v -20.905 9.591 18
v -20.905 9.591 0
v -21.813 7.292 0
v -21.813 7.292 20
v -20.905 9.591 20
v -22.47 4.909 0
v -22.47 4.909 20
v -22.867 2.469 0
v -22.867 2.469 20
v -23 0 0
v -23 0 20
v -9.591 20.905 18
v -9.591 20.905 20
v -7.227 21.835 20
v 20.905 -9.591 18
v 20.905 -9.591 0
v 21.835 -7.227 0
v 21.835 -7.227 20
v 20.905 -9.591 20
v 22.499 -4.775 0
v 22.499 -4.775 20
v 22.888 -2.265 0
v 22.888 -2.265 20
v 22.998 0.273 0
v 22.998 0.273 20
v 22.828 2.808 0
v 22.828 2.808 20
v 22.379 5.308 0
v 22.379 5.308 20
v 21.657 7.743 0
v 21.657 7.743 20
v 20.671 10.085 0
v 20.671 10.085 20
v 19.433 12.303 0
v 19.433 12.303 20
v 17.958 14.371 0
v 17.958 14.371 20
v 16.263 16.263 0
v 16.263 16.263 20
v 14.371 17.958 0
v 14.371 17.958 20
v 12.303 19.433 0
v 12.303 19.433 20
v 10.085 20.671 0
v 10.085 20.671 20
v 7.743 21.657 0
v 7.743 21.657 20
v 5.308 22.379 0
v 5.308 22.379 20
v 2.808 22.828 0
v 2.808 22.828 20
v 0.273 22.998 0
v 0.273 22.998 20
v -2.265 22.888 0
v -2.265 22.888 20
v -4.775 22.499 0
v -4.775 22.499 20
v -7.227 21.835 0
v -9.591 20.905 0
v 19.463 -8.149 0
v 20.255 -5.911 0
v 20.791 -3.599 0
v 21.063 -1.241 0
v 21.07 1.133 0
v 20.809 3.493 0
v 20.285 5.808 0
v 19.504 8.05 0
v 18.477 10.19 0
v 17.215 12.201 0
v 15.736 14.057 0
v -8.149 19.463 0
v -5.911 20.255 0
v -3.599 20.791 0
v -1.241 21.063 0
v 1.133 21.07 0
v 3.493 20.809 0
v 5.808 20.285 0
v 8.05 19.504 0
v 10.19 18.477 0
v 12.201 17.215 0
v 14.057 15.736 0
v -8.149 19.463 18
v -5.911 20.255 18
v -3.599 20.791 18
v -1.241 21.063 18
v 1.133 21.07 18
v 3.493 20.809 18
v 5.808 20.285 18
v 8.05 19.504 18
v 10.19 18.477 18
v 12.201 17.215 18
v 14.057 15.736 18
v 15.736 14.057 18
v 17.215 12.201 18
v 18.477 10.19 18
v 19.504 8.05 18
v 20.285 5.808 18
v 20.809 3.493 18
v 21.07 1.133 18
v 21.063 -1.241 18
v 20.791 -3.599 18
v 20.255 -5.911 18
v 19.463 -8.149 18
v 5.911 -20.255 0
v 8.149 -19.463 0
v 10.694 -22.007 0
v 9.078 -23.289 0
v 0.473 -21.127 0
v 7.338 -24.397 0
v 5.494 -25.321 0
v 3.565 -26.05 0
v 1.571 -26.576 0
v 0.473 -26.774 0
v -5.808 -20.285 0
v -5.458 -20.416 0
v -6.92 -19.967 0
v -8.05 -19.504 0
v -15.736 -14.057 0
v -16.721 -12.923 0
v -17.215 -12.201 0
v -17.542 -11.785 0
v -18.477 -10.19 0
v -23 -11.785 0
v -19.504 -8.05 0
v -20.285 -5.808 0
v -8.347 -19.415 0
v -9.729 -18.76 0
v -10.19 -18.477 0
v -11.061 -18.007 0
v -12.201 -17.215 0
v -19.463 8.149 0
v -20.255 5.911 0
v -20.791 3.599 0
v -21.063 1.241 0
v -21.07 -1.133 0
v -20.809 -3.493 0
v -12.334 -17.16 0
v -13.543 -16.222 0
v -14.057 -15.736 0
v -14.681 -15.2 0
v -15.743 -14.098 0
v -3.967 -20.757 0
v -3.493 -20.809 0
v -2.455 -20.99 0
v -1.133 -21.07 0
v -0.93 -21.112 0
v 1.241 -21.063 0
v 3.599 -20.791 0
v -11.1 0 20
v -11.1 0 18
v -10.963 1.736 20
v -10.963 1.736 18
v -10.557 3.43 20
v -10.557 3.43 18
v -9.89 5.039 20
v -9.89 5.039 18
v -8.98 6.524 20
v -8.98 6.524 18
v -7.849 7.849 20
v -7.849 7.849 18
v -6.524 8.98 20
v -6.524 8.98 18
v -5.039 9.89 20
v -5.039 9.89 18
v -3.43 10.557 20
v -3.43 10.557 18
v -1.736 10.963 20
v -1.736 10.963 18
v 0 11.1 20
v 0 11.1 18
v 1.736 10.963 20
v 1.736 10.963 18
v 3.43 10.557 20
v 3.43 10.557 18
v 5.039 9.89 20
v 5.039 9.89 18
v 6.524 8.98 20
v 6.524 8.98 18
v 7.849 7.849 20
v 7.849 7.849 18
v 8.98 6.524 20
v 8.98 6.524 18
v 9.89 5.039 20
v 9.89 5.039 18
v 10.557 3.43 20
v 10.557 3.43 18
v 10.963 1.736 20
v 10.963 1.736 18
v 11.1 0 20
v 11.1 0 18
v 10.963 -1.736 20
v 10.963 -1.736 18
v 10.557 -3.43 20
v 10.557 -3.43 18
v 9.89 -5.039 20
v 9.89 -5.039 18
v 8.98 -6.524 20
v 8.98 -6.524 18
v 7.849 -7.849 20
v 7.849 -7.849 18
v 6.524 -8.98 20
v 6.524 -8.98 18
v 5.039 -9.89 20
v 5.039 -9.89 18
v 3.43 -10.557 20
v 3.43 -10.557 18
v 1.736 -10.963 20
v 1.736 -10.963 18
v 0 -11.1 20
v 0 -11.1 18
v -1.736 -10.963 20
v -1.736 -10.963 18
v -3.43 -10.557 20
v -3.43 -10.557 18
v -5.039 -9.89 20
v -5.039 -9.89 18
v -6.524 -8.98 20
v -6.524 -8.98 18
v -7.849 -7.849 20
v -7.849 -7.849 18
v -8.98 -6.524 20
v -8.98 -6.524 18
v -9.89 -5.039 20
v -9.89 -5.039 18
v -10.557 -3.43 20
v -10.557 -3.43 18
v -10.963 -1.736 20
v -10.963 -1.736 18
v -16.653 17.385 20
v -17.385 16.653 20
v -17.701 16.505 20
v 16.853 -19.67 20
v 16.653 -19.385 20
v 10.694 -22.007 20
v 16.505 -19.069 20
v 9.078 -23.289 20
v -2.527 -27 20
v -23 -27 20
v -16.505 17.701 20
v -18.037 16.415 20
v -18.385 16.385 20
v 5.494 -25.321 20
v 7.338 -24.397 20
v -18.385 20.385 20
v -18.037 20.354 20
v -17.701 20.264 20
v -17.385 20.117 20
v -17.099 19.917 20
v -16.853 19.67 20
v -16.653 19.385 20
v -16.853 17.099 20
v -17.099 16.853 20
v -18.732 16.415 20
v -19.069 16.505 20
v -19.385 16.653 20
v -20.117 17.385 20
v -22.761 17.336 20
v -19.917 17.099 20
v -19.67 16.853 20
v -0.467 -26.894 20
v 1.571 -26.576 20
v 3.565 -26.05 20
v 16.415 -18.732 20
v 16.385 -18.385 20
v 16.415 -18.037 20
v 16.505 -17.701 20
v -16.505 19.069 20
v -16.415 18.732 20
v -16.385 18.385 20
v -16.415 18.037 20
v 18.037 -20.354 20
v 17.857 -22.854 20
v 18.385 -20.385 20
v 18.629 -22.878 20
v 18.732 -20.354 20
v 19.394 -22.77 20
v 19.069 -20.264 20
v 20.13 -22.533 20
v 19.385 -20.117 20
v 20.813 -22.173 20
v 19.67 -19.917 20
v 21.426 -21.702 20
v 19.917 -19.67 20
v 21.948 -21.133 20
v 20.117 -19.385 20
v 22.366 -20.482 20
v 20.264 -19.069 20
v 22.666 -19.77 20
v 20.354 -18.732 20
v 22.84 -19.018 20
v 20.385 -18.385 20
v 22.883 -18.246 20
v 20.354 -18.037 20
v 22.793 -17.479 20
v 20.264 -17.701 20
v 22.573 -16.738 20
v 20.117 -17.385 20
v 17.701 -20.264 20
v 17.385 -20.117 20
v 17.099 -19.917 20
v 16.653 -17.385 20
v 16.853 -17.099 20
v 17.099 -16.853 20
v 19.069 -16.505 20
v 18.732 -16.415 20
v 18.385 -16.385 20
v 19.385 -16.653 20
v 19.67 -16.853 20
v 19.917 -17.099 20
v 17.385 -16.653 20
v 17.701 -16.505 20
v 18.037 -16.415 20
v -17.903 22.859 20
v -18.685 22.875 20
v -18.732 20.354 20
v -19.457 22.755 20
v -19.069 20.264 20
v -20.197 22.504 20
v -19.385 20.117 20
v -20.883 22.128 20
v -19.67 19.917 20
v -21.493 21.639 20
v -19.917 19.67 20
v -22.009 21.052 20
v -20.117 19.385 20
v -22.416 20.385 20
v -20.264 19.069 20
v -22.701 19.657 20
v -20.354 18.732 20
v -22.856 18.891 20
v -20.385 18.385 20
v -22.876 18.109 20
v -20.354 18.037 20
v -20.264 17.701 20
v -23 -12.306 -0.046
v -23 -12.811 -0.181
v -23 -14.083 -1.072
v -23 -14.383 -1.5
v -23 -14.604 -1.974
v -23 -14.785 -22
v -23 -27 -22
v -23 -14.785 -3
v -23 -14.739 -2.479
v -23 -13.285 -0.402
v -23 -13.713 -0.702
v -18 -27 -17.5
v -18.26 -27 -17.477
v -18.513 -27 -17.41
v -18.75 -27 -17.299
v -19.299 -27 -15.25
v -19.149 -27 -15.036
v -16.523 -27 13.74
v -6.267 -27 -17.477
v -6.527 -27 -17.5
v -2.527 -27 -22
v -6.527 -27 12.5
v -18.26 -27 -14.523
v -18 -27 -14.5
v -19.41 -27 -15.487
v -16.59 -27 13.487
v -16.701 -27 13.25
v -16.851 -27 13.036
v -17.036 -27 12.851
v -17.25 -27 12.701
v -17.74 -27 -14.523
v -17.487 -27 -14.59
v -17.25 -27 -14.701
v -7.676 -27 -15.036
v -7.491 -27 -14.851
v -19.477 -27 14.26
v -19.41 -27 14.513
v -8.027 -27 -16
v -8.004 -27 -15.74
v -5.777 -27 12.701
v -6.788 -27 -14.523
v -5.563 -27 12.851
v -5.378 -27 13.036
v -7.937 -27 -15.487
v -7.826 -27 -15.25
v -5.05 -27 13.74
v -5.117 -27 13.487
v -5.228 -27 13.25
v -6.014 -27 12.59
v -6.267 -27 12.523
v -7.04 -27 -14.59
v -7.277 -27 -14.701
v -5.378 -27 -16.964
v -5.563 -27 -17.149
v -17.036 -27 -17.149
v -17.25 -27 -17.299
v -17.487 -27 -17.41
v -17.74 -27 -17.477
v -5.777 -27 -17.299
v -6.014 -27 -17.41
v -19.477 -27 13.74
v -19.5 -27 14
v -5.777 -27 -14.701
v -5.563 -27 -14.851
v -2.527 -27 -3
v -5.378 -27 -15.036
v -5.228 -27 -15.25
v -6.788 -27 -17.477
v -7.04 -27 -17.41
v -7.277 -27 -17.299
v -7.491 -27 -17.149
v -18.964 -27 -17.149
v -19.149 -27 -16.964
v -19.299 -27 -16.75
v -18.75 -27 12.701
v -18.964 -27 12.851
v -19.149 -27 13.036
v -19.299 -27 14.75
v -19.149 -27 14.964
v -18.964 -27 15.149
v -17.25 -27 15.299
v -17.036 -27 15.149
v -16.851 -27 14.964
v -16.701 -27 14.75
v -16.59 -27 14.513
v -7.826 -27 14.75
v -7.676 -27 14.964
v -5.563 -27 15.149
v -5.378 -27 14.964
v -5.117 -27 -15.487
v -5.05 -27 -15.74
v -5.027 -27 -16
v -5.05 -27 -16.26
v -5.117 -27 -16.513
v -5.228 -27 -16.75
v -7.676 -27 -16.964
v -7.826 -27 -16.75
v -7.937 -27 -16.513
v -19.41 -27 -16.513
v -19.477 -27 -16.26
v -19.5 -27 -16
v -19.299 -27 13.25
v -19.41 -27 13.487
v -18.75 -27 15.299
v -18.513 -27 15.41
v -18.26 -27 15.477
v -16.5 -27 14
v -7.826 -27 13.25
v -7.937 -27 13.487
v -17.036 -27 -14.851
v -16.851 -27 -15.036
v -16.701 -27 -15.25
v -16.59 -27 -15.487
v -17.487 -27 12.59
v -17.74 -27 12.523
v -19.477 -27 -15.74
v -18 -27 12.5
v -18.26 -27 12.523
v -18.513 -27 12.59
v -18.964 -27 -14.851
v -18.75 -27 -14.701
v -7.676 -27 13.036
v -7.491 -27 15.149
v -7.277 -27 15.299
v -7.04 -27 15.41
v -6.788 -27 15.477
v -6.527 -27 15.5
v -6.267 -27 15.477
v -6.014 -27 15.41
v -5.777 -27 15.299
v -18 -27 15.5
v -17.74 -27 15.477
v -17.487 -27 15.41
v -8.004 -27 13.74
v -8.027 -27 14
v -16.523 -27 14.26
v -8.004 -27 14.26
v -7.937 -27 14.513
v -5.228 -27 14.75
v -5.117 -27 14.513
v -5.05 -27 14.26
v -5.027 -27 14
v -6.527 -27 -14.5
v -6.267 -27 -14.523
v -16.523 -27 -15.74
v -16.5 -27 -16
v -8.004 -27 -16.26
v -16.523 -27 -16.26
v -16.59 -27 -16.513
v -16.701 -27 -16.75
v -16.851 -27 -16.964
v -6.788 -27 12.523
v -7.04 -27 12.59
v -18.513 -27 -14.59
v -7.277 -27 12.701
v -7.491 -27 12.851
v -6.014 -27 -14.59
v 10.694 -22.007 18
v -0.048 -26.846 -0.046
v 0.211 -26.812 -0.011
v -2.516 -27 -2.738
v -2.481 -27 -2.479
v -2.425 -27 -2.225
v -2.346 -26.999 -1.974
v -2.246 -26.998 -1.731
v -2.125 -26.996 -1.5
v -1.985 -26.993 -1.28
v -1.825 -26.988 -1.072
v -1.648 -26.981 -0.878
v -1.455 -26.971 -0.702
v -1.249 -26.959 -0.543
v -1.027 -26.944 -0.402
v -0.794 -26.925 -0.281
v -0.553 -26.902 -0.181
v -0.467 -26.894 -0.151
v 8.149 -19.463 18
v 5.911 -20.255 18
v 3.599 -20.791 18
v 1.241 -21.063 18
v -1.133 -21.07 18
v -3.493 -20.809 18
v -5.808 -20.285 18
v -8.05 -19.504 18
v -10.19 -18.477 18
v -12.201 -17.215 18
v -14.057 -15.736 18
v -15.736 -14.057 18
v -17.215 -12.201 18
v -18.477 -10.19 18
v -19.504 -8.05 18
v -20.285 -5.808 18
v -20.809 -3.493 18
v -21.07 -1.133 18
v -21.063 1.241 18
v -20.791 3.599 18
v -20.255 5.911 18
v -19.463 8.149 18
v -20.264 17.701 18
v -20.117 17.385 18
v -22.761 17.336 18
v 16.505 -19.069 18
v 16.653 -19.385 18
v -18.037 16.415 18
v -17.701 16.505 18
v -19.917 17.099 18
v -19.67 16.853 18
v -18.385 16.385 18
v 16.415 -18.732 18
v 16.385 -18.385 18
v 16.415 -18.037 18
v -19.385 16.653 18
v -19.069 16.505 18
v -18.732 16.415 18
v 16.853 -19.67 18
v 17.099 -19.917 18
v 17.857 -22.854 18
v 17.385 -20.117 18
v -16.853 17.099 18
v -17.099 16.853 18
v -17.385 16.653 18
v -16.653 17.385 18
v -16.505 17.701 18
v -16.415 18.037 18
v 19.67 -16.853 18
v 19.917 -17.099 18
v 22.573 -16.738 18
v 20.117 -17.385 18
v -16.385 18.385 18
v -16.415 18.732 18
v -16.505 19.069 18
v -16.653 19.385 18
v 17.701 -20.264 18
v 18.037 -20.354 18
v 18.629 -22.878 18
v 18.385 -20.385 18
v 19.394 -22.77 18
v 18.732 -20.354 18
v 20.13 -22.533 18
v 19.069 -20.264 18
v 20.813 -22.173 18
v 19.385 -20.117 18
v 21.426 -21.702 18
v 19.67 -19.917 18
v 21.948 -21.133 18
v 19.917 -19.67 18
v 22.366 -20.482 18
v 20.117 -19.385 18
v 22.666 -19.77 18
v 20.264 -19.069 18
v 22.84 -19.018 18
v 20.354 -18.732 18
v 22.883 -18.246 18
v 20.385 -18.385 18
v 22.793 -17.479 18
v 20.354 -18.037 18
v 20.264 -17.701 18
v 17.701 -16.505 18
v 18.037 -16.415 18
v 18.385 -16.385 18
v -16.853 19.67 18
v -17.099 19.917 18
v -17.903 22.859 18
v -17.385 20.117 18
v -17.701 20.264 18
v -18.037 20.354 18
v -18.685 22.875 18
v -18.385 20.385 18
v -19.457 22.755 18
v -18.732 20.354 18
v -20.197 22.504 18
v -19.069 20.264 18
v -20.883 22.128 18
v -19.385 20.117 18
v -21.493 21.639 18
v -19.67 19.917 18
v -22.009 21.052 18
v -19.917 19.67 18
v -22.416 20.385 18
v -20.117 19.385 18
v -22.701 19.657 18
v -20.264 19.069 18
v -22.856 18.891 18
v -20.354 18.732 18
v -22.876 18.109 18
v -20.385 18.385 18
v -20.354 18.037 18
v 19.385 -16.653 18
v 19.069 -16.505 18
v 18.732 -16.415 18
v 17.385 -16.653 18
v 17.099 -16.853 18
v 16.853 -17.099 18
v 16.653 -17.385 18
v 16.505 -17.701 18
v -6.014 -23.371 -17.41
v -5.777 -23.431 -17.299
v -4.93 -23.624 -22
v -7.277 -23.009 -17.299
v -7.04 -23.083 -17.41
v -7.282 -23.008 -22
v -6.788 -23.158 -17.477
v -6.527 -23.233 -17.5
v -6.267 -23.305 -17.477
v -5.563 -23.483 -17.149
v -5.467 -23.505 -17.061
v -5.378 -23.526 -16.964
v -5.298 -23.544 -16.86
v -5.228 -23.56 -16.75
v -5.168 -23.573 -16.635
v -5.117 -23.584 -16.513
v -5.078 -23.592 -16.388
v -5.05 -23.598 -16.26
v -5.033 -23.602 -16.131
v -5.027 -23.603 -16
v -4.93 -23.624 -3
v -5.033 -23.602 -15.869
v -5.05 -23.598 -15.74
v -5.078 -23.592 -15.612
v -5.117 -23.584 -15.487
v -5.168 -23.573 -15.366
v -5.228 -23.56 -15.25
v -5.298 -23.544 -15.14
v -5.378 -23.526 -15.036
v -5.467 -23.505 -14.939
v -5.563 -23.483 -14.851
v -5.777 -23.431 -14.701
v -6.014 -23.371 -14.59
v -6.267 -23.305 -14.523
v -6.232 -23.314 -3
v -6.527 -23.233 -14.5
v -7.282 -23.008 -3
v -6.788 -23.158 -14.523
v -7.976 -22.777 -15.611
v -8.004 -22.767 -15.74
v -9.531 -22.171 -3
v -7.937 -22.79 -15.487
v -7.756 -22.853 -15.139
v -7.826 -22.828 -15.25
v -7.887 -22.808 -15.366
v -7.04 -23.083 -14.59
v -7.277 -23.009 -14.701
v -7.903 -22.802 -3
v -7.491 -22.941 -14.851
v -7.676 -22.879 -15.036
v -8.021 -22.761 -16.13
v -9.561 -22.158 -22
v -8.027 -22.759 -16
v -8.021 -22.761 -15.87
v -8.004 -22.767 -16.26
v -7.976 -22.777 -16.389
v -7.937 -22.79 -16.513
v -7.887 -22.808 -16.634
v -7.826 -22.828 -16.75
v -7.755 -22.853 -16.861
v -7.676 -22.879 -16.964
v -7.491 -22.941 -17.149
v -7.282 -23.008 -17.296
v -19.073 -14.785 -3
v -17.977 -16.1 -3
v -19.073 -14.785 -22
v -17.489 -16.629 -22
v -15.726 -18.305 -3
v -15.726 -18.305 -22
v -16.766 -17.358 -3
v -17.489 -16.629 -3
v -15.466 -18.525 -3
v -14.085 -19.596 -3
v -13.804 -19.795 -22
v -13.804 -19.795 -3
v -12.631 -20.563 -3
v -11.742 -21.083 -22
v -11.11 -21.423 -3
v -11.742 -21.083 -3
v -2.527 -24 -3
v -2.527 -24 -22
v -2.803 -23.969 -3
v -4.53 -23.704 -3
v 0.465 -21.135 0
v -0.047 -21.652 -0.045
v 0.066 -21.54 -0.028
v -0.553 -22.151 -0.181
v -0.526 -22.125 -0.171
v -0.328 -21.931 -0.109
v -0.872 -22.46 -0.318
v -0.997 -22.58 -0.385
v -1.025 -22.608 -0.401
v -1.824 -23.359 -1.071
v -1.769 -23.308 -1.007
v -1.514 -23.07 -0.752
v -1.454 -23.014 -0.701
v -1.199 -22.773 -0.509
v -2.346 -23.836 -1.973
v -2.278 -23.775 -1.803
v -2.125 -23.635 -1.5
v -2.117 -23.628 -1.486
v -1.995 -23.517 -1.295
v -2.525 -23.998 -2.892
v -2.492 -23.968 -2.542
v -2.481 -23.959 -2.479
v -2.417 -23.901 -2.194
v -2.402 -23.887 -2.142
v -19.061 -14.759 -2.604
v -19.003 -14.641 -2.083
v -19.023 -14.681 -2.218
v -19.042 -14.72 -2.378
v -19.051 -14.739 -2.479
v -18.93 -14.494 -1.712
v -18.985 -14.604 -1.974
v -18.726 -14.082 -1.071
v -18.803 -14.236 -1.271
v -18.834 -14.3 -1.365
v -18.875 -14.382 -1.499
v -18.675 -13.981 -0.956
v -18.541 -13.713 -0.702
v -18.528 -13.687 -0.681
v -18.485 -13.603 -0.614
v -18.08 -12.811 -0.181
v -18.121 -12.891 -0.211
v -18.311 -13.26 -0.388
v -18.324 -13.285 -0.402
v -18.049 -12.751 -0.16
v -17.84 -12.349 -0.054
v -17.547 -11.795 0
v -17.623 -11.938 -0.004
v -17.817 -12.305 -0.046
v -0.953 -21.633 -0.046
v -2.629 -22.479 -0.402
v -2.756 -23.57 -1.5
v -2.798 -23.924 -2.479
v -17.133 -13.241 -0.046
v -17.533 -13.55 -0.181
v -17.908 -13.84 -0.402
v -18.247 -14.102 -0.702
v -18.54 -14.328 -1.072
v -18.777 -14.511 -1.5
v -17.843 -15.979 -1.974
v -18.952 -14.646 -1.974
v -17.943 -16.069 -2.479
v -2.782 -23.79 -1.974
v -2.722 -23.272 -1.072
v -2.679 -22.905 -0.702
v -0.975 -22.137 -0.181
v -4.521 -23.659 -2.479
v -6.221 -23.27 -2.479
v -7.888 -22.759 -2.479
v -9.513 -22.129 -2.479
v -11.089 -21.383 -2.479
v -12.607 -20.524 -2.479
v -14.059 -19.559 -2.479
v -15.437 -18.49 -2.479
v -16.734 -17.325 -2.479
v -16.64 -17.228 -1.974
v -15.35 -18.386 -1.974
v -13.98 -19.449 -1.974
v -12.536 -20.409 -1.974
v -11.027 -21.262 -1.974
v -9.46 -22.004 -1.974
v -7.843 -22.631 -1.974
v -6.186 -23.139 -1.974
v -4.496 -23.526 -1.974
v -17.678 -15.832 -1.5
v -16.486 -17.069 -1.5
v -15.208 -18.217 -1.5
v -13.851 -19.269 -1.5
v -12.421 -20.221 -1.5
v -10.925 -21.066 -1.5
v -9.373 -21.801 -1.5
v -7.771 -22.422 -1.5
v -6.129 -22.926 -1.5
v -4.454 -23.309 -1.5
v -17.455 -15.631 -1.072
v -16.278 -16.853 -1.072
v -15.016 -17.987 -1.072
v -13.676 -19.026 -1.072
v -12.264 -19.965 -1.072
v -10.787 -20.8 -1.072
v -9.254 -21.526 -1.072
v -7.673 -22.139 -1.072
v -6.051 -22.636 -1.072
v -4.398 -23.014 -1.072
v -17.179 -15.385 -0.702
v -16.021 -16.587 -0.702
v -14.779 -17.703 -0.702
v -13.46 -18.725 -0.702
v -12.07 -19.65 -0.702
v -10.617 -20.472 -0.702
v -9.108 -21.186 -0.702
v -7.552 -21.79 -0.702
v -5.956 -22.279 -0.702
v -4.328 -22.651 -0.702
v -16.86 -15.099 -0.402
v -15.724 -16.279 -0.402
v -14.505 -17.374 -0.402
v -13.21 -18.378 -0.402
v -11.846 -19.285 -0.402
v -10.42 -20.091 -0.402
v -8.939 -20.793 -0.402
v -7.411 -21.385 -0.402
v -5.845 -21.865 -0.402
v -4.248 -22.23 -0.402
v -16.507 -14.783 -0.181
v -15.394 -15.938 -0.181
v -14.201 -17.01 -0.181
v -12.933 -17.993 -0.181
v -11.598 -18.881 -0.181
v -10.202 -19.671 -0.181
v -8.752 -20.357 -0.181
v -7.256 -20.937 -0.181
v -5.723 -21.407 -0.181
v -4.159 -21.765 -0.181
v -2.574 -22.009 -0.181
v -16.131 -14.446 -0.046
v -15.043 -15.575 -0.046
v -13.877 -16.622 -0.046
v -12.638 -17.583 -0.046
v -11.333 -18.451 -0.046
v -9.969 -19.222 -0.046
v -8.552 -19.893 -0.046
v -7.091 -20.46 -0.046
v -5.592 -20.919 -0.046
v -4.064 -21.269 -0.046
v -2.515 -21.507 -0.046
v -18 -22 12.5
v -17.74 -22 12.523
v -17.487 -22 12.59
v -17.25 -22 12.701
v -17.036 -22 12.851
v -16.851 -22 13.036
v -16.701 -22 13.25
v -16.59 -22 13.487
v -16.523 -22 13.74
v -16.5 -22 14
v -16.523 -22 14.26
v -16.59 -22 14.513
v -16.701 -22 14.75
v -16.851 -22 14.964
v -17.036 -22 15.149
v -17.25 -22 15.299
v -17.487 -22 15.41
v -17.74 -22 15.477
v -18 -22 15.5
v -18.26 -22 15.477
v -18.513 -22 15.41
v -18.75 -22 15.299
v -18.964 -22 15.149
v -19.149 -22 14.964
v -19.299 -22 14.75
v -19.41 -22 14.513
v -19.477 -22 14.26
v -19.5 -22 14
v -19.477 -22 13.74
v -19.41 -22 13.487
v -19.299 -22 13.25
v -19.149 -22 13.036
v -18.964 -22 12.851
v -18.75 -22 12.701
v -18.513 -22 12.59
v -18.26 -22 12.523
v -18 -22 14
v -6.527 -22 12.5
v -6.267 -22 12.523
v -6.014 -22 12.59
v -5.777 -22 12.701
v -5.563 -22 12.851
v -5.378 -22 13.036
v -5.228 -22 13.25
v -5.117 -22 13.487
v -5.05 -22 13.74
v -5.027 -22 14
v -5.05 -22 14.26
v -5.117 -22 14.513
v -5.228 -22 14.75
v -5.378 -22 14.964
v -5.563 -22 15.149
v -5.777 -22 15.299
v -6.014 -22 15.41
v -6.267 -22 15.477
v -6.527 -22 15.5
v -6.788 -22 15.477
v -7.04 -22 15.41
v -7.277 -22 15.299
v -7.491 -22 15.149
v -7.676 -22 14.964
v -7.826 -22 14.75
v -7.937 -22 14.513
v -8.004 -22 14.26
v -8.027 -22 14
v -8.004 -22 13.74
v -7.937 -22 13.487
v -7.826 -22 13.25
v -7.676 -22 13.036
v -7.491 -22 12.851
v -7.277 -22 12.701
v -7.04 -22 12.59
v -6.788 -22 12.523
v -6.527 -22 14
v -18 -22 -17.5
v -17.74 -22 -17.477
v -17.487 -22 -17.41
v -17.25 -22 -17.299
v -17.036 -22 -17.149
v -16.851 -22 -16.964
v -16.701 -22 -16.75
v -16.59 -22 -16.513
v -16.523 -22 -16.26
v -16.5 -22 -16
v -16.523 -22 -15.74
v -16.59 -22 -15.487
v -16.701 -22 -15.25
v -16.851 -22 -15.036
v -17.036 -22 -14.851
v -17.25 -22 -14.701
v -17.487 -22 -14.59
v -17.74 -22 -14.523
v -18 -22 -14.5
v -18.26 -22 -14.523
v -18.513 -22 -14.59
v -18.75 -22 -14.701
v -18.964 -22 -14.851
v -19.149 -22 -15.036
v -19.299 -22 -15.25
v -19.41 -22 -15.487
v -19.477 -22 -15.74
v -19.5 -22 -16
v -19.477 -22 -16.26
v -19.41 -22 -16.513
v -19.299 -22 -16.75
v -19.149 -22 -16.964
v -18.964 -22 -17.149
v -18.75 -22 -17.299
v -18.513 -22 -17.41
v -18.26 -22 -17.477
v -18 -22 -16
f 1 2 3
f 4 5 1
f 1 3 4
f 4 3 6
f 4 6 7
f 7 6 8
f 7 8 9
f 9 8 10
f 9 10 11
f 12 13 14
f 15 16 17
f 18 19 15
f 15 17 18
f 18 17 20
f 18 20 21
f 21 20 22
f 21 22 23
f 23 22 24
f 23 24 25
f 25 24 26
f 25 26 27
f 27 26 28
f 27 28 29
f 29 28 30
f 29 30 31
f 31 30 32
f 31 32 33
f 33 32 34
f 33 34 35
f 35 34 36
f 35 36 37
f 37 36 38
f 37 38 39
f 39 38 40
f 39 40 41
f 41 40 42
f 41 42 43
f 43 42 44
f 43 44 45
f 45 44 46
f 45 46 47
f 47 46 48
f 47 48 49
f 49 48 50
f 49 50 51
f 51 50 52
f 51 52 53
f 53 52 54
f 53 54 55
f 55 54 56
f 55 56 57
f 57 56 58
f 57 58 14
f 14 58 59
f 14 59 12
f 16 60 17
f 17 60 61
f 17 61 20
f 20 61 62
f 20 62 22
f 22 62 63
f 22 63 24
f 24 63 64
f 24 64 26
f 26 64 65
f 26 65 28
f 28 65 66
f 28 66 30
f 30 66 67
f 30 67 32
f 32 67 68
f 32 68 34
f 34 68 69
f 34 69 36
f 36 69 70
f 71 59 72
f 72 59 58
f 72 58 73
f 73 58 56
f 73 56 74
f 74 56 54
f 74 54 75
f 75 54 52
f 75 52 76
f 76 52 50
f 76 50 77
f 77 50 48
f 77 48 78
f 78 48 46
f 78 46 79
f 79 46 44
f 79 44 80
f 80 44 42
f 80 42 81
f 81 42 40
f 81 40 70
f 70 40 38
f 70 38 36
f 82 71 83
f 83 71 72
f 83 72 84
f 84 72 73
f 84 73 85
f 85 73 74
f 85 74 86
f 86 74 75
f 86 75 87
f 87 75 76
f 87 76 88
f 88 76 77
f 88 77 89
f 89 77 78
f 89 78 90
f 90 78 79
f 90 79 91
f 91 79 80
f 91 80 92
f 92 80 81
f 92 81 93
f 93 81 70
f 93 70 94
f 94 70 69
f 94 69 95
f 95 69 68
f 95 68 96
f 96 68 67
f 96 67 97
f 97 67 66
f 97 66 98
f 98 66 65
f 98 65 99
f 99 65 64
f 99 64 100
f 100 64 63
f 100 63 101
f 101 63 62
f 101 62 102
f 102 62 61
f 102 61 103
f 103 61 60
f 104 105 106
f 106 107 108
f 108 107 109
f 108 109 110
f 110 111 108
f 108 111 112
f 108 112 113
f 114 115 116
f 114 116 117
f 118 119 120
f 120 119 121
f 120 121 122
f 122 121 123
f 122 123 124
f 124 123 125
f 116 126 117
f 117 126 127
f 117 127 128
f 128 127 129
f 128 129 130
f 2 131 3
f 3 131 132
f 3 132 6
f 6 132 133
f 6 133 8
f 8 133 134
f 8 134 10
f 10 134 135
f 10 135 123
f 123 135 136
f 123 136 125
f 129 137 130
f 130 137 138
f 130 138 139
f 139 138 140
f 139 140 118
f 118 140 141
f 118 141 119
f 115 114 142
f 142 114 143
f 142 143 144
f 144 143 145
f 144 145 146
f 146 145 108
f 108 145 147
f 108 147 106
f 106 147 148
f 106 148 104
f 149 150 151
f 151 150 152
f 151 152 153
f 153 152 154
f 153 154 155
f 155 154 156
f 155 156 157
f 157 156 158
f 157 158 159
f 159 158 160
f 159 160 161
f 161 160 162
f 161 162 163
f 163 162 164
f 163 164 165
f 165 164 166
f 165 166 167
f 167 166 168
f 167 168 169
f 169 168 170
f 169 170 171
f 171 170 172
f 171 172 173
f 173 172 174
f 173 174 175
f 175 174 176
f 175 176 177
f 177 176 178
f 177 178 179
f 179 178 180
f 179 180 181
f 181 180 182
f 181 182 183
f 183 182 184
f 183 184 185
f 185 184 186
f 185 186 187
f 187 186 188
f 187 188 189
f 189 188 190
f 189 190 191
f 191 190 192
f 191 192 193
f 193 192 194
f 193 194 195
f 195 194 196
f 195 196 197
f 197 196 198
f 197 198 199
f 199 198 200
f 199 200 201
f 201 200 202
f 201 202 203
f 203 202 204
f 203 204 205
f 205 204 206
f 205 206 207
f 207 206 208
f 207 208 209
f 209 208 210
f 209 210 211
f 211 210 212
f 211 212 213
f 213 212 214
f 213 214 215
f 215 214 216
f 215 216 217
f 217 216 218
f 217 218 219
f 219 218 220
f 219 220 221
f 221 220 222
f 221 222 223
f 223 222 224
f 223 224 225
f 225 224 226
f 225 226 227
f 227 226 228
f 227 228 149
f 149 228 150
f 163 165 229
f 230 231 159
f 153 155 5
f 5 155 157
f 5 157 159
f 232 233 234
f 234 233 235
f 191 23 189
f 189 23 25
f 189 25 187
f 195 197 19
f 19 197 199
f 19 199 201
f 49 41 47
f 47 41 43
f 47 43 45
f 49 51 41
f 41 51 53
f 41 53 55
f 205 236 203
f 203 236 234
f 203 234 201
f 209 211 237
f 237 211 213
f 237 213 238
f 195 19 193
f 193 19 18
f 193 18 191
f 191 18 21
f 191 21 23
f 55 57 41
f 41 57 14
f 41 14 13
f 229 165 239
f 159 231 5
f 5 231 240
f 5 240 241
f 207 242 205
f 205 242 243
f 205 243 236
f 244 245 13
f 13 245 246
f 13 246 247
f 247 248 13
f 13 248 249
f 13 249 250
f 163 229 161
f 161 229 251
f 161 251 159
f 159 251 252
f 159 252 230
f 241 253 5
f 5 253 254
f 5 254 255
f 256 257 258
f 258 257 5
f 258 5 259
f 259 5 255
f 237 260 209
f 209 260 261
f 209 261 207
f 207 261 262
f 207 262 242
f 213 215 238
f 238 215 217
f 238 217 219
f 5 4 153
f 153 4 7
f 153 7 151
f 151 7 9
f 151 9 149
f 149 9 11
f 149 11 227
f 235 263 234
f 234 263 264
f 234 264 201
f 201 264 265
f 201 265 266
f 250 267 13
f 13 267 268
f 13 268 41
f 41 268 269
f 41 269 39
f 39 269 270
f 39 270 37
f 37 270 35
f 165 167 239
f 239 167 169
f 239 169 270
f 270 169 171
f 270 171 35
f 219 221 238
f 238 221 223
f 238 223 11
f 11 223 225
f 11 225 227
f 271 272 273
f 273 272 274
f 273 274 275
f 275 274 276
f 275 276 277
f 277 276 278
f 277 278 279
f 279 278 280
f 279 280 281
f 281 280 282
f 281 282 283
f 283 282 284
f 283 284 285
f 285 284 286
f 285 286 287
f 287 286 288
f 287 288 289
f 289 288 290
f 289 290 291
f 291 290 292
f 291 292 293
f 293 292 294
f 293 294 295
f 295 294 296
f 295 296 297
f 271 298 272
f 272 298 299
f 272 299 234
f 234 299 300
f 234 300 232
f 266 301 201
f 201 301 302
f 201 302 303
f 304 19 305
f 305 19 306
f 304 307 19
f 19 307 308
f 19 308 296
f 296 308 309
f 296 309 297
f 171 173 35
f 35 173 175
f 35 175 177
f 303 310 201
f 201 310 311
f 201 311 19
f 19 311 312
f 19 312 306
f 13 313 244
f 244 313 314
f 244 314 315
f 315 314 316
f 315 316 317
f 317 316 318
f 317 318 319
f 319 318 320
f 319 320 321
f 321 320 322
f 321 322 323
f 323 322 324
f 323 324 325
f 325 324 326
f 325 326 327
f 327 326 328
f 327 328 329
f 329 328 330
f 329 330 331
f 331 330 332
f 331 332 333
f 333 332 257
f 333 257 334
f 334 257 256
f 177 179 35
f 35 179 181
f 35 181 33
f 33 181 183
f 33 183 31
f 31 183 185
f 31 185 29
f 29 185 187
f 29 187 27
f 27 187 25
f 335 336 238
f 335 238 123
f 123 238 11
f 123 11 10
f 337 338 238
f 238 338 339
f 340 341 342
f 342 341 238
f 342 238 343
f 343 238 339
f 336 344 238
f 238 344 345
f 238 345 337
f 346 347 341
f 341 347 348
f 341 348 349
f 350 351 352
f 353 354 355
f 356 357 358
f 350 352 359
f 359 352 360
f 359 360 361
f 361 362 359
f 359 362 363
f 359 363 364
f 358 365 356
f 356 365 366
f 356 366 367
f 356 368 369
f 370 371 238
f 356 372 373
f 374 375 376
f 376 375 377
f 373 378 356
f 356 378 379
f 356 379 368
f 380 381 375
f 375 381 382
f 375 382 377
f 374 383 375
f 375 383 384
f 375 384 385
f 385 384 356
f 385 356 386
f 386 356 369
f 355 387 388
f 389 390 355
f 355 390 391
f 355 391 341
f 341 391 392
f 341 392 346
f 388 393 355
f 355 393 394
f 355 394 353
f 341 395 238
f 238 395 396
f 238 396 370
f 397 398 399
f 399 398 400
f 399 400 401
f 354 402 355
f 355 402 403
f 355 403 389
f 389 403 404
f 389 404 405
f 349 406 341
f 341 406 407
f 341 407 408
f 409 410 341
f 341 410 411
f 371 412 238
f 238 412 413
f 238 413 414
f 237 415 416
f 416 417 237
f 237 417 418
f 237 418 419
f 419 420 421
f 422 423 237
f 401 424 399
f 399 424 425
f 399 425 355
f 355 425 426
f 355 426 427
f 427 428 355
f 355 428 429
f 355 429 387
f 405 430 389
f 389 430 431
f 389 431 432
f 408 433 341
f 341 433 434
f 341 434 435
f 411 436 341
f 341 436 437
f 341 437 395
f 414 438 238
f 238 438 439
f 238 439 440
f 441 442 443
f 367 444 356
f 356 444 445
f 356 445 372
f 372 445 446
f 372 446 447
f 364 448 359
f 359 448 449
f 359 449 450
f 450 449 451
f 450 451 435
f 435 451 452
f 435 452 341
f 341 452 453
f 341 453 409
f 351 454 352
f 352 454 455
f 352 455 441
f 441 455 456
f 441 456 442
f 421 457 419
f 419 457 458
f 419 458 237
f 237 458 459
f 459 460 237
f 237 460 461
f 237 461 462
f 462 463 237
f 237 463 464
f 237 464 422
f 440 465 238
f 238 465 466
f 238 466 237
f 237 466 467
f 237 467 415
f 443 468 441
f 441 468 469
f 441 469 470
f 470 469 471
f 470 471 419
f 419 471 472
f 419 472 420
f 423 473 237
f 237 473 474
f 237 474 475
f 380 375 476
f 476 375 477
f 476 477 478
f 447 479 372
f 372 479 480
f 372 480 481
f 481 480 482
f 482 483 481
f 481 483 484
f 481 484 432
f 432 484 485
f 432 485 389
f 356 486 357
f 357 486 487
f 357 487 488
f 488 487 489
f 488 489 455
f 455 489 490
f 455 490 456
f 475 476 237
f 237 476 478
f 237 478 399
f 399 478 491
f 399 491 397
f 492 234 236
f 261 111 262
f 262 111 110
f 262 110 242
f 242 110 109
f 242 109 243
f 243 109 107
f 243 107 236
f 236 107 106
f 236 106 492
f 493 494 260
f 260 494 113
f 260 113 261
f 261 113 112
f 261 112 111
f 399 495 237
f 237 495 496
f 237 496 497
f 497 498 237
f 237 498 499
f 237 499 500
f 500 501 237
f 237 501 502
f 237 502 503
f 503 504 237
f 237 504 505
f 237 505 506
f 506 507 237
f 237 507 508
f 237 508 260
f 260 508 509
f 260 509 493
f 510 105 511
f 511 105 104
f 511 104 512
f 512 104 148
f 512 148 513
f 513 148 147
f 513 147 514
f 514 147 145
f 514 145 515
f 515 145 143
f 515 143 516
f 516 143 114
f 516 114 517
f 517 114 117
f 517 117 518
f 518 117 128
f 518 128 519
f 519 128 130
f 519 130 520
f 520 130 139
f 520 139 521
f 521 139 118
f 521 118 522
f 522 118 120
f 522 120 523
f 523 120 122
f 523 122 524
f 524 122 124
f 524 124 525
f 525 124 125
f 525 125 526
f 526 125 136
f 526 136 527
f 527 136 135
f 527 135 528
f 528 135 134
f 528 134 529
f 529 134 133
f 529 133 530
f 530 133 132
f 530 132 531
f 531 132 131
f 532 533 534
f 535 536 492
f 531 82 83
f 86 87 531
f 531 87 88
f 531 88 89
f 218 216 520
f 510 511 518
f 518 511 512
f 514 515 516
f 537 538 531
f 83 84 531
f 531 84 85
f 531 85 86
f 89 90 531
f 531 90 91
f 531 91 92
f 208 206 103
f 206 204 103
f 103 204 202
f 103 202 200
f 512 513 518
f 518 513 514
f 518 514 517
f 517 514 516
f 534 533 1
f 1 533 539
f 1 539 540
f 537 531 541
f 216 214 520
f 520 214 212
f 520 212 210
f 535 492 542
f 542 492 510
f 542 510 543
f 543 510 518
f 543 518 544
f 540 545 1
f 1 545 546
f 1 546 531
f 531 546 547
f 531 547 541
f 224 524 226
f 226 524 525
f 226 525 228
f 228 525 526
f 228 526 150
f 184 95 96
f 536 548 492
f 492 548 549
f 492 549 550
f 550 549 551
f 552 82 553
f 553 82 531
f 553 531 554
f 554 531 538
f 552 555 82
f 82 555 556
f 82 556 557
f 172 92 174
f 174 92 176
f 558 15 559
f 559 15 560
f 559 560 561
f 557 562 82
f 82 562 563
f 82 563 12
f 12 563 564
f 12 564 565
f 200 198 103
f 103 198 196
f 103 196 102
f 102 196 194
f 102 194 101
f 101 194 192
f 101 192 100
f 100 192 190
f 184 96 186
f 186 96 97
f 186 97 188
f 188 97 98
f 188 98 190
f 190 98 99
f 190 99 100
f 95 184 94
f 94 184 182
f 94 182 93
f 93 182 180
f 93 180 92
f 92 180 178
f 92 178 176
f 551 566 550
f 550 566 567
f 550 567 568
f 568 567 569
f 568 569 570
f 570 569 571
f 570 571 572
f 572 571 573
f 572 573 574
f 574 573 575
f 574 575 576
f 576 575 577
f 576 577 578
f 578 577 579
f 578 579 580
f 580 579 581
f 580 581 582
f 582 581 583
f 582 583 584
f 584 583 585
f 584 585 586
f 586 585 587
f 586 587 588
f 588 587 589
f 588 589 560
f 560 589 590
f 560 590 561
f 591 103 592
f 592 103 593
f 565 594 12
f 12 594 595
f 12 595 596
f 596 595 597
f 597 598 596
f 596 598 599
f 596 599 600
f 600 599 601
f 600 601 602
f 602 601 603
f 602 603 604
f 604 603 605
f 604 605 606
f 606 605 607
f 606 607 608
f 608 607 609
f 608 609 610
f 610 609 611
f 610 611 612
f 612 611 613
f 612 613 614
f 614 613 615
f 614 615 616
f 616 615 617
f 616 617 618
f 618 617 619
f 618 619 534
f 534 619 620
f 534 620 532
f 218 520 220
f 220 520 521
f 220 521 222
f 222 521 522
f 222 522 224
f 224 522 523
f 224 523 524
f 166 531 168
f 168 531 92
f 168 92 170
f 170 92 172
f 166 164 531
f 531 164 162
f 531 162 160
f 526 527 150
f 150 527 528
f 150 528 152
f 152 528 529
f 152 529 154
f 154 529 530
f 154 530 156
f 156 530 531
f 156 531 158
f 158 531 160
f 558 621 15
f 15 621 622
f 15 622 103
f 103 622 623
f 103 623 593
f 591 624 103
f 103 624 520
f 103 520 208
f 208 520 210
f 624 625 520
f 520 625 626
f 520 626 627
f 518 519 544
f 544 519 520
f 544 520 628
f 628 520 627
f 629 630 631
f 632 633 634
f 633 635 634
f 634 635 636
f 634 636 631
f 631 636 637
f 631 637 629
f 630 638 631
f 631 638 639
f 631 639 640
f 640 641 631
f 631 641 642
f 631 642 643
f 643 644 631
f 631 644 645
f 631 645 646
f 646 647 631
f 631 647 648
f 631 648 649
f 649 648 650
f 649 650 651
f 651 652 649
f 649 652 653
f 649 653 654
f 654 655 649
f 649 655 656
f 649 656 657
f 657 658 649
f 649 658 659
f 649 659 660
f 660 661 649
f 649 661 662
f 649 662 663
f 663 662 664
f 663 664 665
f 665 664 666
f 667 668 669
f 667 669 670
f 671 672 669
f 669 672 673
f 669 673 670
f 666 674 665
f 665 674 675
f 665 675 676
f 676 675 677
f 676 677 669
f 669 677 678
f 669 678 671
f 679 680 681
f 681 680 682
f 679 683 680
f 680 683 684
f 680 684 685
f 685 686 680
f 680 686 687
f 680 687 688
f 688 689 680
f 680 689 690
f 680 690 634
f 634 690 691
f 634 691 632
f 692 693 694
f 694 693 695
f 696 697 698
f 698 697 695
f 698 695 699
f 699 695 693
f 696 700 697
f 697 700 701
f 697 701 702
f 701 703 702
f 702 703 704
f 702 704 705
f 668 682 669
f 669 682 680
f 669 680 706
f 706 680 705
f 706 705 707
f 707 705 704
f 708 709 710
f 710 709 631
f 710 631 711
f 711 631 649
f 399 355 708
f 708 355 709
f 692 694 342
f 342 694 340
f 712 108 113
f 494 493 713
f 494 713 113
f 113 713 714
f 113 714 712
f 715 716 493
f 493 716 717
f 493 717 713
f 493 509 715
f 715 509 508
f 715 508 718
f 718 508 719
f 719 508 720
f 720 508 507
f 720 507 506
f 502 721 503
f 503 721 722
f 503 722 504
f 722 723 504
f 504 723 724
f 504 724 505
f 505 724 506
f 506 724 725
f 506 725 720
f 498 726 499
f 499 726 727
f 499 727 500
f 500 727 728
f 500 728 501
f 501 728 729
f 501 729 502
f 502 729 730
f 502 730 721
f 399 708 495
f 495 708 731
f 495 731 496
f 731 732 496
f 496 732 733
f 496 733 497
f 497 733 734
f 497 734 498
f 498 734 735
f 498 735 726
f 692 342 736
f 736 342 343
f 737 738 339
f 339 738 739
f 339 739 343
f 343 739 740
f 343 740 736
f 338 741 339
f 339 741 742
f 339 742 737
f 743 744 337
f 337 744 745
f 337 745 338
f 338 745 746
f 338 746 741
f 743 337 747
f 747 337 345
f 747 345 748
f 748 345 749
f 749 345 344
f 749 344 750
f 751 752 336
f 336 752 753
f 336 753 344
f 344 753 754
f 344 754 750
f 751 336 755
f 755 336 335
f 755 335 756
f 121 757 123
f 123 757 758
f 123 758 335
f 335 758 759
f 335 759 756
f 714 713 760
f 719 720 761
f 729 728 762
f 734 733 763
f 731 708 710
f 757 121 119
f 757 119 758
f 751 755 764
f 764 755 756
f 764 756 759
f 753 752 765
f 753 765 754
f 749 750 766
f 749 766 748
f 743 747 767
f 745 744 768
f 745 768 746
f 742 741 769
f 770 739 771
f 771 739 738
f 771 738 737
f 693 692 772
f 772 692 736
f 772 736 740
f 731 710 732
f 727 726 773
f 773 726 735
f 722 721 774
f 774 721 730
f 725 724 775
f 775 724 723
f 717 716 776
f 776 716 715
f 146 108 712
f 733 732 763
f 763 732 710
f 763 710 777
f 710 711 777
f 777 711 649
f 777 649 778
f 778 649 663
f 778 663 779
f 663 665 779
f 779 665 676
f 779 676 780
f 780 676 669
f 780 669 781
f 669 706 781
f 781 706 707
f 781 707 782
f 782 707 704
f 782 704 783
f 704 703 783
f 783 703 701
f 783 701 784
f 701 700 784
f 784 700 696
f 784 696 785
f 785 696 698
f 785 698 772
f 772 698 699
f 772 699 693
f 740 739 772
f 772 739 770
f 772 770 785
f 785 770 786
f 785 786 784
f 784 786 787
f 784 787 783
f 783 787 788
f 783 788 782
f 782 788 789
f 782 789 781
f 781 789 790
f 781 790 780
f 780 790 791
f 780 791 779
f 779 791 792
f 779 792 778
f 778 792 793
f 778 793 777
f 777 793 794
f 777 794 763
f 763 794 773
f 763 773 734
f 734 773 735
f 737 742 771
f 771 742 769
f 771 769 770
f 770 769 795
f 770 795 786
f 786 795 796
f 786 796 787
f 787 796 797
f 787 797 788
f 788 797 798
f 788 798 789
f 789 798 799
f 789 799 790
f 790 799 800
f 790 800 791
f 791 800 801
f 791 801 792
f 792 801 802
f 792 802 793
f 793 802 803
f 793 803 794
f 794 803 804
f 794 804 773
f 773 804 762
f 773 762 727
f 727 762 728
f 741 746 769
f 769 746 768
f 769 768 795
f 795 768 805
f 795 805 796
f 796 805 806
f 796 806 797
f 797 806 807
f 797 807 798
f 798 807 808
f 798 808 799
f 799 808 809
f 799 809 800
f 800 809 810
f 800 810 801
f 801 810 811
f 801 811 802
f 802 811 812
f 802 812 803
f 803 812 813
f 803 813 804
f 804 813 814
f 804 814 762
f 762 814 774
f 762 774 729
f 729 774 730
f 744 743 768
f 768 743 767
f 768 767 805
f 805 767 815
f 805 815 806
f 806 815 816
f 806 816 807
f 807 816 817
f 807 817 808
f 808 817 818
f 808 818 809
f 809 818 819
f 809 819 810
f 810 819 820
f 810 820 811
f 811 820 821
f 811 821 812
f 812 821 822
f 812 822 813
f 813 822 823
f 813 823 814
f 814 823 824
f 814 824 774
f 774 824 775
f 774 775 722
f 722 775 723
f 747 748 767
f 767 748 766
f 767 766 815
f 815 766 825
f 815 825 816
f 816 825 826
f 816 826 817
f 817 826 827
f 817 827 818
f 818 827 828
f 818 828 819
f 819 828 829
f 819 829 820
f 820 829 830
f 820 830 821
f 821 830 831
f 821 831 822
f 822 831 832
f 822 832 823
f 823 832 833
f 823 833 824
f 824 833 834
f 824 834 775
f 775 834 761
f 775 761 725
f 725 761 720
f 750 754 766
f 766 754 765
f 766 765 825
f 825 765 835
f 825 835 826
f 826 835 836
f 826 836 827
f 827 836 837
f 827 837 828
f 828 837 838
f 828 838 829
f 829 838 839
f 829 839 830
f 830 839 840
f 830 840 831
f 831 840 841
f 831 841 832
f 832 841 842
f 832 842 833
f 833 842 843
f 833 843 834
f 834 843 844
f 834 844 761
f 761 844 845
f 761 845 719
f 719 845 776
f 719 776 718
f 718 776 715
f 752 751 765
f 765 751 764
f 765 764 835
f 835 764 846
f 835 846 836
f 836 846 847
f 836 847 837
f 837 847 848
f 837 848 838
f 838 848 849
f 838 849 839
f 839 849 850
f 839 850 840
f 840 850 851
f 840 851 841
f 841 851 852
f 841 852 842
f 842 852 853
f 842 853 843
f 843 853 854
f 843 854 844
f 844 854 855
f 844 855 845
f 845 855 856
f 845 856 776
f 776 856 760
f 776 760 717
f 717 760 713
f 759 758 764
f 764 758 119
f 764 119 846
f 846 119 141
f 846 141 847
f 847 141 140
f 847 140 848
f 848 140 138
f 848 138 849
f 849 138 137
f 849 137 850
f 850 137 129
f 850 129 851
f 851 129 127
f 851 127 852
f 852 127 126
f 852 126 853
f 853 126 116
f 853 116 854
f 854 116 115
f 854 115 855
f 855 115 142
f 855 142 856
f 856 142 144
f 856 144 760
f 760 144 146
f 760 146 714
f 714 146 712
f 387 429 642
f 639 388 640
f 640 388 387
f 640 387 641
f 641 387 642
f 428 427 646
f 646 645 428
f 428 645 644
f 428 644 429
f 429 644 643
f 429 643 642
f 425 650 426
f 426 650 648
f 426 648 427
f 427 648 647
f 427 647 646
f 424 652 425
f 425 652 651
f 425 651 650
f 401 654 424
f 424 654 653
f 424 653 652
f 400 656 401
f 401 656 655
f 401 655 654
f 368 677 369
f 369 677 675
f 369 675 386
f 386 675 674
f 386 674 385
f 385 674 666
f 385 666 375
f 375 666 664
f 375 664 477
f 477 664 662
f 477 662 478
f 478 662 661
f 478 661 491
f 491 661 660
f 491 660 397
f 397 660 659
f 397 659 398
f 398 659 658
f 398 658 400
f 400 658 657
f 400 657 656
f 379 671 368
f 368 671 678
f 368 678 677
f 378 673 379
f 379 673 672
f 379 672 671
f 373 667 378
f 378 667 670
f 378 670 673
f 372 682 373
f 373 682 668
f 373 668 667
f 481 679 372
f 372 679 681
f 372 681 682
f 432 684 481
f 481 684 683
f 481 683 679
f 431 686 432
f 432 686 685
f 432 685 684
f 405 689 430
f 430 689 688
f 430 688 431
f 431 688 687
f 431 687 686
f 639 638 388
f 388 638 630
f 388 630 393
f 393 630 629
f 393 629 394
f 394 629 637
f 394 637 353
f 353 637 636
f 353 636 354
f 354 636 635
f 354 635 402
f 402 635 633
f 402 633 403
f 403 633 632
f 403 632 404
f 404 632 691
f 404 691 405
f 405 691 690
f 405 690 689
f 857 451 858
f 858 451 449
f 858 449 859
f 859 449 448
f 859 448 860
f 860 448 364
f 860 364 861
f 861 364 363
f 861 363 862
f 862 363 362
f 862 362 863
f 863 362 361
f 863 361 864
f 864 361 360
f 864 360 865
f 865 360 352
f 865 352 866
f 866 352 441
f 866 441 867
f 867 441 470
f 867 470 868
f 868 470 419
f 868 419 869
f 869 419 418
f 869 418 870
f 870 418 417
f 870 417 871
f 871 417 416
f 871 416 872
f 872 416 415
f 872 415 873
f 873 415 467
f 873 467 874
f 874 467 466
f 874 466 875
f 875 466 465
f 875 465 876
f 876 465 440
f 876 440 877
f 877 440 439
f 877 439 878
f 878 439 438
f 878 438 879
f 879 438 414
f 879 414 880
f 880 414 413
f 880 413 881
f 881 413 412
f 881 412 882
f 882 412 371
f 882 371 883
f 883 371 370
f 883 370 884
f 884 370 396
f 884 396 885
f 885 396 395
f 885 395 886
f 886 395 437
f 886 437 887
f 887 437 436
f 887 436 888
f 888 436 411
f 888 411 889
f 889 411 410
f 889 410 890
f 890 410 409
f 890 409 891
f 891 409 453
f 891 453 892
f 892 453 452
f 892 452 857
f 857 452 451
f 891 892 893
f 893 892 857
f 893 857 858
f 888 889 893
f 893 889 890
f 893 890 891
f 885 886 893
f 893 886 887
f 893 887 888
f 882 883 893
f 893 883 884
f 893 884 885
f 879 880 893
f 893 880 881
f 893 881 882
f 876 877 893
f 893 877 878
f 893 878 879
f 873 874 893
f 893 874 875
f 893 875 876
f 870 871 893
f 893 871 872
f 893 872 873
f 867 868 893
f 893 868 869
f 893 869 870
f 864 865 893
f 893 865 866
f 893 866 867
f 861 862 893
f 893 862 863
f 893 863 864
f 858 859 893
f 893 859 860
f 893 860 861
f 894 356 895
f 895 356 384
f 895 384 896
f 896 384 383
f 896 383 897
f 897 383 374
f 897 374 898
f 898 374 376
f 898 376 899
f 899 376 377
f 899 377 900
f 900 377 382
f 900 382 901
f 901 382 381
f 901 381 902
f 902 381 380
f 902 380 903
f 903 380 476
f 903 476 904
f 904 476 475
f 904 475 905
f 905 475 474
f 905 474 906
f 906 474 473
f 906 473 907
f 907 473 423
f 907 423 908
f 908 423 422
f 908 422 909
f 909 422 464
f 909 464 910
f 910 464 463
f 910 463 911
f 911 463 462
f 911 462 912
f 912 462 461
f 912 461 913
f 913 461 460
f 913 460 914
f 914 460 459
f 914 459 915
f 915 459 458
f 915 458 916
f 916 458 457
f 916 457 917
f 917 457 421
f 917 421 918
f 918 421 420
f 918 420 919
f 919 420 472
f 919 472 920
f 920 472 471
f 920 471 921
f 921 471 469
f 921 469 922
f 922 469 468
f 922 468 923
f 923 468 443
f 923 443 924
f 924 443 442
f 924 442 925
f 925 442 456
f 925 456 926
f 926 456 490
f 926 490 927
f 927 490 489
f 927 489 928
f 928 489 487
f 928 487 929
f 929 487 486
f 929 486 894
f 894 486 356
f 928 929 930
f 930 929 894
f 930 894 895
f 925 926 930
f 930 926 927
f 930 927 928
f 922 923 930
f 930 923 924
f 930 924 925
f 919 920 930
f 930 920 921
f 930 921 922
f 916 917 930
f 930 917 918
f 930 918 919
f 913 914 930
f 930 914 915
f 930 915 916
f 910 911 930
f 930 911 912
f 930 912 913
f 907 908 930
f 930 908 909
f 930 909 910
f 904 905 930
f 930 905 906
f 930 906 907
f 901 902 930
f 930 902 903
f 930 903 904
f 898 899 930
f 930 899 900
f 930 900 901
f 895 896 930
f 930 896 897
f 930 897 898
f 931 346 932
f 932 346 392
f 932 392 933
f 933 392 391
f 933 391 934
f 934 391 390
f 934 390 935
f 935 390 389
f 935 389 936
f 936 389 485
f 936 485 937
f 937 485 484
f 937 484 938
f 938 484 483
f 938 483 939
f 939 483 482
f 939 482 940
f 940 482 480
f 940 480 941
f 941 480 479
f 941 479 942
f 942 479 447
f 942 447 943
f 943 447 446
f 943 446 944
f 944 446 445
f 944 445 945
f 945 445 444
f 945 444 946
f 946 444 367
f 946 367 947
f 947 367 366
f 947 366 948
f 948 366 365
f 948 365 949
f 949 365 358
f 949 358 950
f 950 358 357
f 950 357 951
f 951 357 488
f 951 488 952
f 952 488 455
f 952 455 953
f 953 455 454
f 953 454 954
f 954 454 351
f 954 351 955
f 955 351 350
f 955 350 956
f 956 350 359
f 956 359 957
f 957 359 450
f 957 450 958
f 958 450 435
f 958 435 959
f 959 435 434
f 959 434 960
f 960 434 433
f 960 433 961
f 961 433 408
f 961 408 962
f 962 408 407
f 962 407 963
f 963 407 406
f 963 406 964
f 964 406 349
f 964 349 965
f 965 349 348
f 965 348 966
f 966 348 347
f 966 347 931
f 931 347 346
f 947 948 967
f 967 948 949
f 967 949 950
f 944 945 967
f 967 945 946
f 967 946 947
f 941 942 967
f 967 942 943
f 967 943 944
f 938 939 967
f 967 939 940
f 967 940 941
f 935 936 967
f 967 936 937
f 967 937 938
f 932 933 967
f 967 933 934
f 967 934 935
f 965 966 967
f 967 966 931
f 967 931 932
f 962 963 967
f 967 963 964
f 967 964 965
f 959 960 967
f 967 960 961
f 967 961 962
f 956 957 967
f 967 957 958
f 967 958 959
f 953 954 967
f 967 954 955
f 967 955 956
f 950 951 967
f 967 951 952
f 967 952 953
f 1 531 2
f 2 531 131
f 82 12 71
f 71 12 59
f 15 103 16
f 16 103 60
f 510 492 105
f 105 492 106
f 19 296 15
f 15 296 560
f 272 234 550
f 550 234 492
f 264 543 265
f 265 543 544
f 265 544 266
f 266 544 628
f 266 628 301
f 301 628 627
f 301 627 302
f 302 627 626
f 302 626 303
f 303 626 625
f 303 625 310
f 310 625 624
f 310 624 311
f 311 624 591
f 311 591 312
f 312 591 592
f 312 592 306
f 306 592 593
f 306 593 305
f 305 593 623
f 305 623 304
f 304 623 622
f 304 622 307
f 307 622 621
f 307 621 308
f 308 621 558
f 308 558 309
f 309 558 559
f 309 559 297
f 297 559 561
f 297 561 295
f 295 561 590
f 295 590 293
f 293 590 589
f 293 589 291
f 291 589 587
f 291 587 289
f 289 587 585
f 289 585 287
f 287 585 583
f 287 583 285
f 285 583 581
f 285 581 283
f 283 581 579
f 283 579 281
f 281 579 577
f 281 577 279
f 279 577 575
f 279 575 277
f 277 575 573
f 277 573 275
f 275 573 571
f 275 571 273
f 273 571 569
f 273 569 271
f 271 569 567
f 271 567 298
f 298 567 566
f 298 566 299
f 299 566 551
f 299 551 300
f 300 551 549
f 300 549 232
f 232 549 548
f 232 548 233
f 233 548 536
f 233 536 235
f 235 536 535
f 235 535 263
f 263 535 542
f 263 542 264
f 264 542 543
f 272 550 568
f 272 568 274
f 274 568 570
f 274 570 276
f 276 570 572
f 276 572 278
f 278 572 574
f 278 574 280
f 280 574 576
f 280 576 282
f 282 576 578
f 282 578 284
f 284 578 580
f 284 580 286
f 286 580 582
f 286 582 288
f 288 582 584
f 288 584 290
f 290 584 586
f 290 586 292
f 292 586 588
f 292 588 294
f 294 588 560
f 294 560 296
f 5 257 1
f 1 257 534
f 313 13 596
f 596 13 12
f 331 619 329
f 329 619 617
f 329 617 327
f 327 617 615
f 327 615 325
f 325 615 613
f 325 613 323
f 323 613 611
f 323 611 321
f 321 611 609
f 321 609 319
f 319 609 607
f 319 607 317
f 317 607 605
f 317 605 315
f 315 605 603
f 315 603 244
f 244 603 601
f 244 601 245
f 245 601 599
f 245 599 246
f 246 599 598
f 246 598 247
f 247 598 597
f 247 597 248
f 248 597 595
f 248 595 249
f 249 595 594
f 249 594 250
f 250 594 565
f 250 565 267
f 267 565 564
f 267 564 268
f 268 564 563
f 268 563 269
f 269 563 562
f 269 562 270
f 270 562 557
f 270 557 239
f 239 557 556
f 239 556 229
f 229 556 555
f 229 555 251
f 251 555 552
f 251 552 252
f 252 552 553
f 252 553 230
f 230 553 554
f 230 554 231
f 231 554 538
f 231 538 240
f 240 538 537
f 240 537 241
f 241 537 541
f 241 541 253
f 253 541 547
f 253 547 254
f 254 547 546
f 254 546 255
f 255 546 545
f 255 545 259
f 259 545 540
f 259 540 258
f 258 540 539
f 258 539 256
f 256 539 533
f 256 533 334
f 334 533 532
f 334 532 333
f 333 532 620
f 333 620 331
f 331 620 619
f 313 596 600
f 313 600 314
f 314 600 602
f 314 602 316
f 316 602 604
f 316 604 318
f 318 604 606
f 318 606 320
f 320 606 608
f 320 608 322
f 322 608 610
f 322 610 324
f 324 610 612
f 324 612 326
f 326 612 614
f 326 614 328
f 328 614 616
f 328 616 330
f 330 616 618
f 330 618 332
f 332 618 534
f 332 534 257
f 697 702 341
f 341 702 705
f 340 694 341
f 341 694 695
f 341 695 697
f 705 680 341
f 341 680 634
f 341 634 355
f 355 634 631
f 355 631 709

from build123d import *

# Parameters (mm, degrees)
SKETCH_1_R           = 11.1
EXTRUDE_1_DEPTH      = 20
SKETCH_3_R           = 21.1
CUT_EXTRUDE_11_DEPTH = 18
EXTRUDE_2_DEPTH      = 20
FILLET_3_R           = 3
SKETCH_5_R           = 1.5
CUT_EXTRUDE_12_DEPTH = 5
CUT_EXTRUDE_13_DEPTH = 18
SKETCH_7_R           = 2
EXTRUDE_3_DEPTH      = 2
EXTRUDE_4_DEPTH      = 2


with BuildPart() as part:
    # 草图1 → 凸台-拉伸1 (new body)
    with BuildSketch(Plane.XY):
        with BuildLine():
            Line((-23, 0), (-23, -27))
            Line((-23, -27), (-2.527032193, -27))
            ThreePointArc((-2.527032193, -27), (6.11037495, -25.038713863), (13.053739404, -19.539519785))
            ThreePointArc((13.053739404, -19.539519785), (14.135978403, -18.302517785), (15.316133792, -17.158556049))
            ThreePointArc((15.316133792, -17.158556049), (9.400237305, 20.991320554), (-23, 0))
        make_face()
        Circle(SKETCH_1_R, mode=Mode.SUBTRACT)
    extrude(amount=EXTRUDE_1_DEPTH)

    # 草图3 → 切除-拉伸11 (cut)
    with BuildSketch(Plane(origin=(0, 0, 0), x_dir=(-1, 0, 0), z_dir=(0, 0, -1))):
        Circle(SKETCH_3_R)
    extrude(amount=-CUT_EXTRUDE_11_DEPTH, mode=Mode.SUBTRACT)

    # 草图4 → 凸台-拉伸2 (add)
    with BuildSketch(Plane(origin=(0, 0, 0), x_dir=(-1, 0, 0), z_dir=(0, 0, -1))):
        with BuildLine():
            Line((2.527032193, -24), (2.527032193, -27))
            Line((2.527032193, -27), (23, -27))
            Line((23, -27), (23, -24))
            Line((23, -24), (23, -14.78470732))
            Line((23, -14.78470732), (19.073497874, -14.78470732))
            ThreePointArc((19.073497874, -14.78470732), (11.742066666, -21.083400155), (2.527032193, -24))
        make_face()
    extrude(amount=EXTRUDE_2_DEPTH)

    # 圆角3
    fillet_3_edges = [part.edges().sort_by_distance(p)[0] for p in [
        (-21.036748937, -14.78470732, 0),
        (-11.742066666, -21.083400155, 0),
        (-2.527032193, -25.5, 0),
    ]]
    fillet(fillet_3_edges, radius=FILLET_3_R)

    # 草图5 → 切除-拉伸12 (cut)
    with BuildSketch(Plane.XZ.offset(27)):
        with Locations(Location((-18, 14, 0), (0, 0, 270))):
            Circle(SKETCH_5_R)
        with Locations(Location((-6.527032193, 14, 0), (0, 0, 270))):
            Circle(SKETCH_5_R)
        with Locations(Location((-6.527032193, -16, 0), (0, 0, 270))):
            Circle(SKETCH_5_R)
        with Locations(Location((-18, -16, 0), (0, 0, 90))):
            Circle(SKETCH_5_R)
    extrude(amount=-CUT_EXTRUDE_12_DEPTH, mode=Mode.SUBTRACT)

    # 草图6 → 切除-拉伸13 (cut)
    with BuildSketch(Plane(origin=(0, 0, 0), x_dir=(-1, 0, 0), z_dir=(0, 0, -1))):
        with BuildLine():
            ThreePointArc((-20.904804931, -9.591096432), (-18.881207588, -13.133925537), (-16.263455967, -16.263455967))
            Line((-16.263455967, -16.263455967), (-14.919953083, -14.919953083))
            ThreePointArc((-14.919953083, -14.919953083), (-17.52155815, -11.756062266), (-19.462831216, -8.149122717))
            Line((-19.462831216, -8.149122717), (-20.904804931, -9.591096432))
        make_face()
        with BuildLine():
            ThreePointArc((8.149122717, 19.462831216), (11.756062266, 17.52155815), (14.919953083, 14.919953083))
            Line((14.919953083, 14.919953083), (16.263455967, 16.263455967))
            ThreePointArc((16.263455967, 16.263455967), (13.133925537, 18.881207588), (9.591096432, 20.904804931))
            Line((9.591096432, 20.904804931), (8.149122717, 19.462831216))
        make_face()
        with BuildLine():
            Line((-14.919953083, -14.919953083), (-16.263455967, -16.263455967))
            ThreePointArc((-16.263455967, -16.263455967), (-15.796136343, -16.717717447), (-15.316133792, -17.158556049))
            ThreePointArc((-15.316133792, -17.158556049), (-14.135978403, -18.302517785), (-13.053739404, -19.539519785))
            ThreePointArc((-13.053739404, -19.539519785), (-11.926392495, -20.823838642), (-10.693521638, -22.007230137))
            Line((-10.693521638, -22.007230137), (-8.149122717, -19.462831216))
            ThreePointArc((-8.149122717, -19.462831216), (-11.756062266, -17.52155815), (-14.919953083, -14.919953083))
        make_face()
        with BuildLine():
            Line((16.263455967, 16.263455967), (14.919953083, 14.919953083))
            ThreePointArc((14.919953083, 14.919953083), (17.52155815, 11.756062266), (19.462831216, 8.149122717))
            Line((19.462831216, 8.149122717), (20.904804931, 9.591096432))
            ThreePointArc((20.904804931, 9.591096432), (18.881207588, 13.133925537), (16.263455967, 16.263455967))
        make_face()
        with BuildLine():
            ThreePointArc((-20.904804931, -9.591096432), (-18.881207588, -13.133925537), (-16.263455967, -16.263455967))
            Line((-16.263455967, -16.263455967), (-14.919953083, -14.919953083))
            ThreePointArc((-14.919953083, -14.919953083), (-17.52155815, -11.756062266), (-19.462831216, -8.149122717))
            Line((-19.462831216, -8.149122717), (-20.904804931, -9.591096432))
        make_face()
        with BuildLine():
            ThreePointArc((8.149122717, 19.462831216), (11.756062266, 17.52155815), (14.919953083, 14.919953083))
            Line((14.919953083, 14.919953083), (16.263455967, 16.263455967))
            ThreePointArc((16.263455967, 16.263455967), (13.133925537, 18.881207588), (9.591096432, 20.904804931))
            Line((9.591096432, 20.904804931), (8.149122717, 19.462831216))
        make_face()
    extrude(amount=-CUT_EXTRUDE_13_DEPTH, mode=Mode.SUBTRACT)

    # 草图7 → 凸台-拉伸3 (add)
    # profile 1 of 2: a face of its own
    with BuildSketch(Plane(origin=(0, 0, 18), x_dir=(-1, 0, 0), z_dir=(0, 0, -1))):
        with BuildLine():
            Line((-20.904804931, -9.591096432), (-22.572553276, -16.737802089))
            ThreePointArc((-22.572553276, -16.737802089), (-21.948390933, -21.13262107), (-17.856697376, -22.853683631))
            Line((-17.856697376, -22.853683631), (-10.693521638, -22.007230137))
            ThreePointArc((-10.693521638, -22.007230137), (-11.926392495, -20.823838642), (-13.053739404, -19.539519785))
            ThreePointArc((-13.053739404, -19.539519785), (-14.135978403, -18.302517785), (-15.316133792, -17.158556049))
            ThreePointArc((-15.316133792, -17.158556049), (-18.501505662, -13.66361183), (-20.904804931, -9.591096432))
        make_face()
        with Locations((-18.384776311, -18.384776311)):
            Circle(SKETCH_7_R, mode=Mode.SUBTRACT)
    # profile 2 of 2: a face of its own
    with BuildSketch(Plane(origin=(0, 0, 18), x_dir=(-1, 0, 0), z_dir=(0, 0, -1))):
        with BuildLine():
            Line((16.822428117, 22.604855471), (9.591096432, 20.904804931))
            ThreePointArc((9.591096432, 20.904804931), (16.263455967, 16.263455967), (20.904804931, 9.591096432))
            Line((20.904804931, 9.591096432), (22.760868508, 17.336054667))
            ThreePointArc((22.760868508, 17.336054667), (21.763719501, 21.356769399), (17.903153402, 22.858928675))
            Line((17.903153402, 22.858928675), (16.822428117, 22.604855471))
        make_face()
        with Locations((18.384776311, 18.384776311)):
            Circle(SKETCH_7_R, mode=Mode.SUBTRACT)
    extrude(amount=-EXTRUDE_3_DEPTH)

    # 草图8 → 凸台-拉伸4 (add)
    with BuildSketch(Plane(origin=(0, 0, -20), x_dir=(-1, 0, 0), z_dir=(0, 0, -1))):
        with BuildLine():
            Line((2.527032193, -24), (2.527032193, -27))
            Line((2.527032193, -27), (23, -27))
            Line((23, -27), (23, -14.78470732))
            Line((23, -14.78470732), (19.073497874, -14.78470732))
            ThreePointArc((19.073497874, -14.78470732), (11.742066666, -21.083400155), (2.527032193, -24))
        make_face()
    extrude(amount=EXTRUDE_4_DEPTH)


solid = part.part
